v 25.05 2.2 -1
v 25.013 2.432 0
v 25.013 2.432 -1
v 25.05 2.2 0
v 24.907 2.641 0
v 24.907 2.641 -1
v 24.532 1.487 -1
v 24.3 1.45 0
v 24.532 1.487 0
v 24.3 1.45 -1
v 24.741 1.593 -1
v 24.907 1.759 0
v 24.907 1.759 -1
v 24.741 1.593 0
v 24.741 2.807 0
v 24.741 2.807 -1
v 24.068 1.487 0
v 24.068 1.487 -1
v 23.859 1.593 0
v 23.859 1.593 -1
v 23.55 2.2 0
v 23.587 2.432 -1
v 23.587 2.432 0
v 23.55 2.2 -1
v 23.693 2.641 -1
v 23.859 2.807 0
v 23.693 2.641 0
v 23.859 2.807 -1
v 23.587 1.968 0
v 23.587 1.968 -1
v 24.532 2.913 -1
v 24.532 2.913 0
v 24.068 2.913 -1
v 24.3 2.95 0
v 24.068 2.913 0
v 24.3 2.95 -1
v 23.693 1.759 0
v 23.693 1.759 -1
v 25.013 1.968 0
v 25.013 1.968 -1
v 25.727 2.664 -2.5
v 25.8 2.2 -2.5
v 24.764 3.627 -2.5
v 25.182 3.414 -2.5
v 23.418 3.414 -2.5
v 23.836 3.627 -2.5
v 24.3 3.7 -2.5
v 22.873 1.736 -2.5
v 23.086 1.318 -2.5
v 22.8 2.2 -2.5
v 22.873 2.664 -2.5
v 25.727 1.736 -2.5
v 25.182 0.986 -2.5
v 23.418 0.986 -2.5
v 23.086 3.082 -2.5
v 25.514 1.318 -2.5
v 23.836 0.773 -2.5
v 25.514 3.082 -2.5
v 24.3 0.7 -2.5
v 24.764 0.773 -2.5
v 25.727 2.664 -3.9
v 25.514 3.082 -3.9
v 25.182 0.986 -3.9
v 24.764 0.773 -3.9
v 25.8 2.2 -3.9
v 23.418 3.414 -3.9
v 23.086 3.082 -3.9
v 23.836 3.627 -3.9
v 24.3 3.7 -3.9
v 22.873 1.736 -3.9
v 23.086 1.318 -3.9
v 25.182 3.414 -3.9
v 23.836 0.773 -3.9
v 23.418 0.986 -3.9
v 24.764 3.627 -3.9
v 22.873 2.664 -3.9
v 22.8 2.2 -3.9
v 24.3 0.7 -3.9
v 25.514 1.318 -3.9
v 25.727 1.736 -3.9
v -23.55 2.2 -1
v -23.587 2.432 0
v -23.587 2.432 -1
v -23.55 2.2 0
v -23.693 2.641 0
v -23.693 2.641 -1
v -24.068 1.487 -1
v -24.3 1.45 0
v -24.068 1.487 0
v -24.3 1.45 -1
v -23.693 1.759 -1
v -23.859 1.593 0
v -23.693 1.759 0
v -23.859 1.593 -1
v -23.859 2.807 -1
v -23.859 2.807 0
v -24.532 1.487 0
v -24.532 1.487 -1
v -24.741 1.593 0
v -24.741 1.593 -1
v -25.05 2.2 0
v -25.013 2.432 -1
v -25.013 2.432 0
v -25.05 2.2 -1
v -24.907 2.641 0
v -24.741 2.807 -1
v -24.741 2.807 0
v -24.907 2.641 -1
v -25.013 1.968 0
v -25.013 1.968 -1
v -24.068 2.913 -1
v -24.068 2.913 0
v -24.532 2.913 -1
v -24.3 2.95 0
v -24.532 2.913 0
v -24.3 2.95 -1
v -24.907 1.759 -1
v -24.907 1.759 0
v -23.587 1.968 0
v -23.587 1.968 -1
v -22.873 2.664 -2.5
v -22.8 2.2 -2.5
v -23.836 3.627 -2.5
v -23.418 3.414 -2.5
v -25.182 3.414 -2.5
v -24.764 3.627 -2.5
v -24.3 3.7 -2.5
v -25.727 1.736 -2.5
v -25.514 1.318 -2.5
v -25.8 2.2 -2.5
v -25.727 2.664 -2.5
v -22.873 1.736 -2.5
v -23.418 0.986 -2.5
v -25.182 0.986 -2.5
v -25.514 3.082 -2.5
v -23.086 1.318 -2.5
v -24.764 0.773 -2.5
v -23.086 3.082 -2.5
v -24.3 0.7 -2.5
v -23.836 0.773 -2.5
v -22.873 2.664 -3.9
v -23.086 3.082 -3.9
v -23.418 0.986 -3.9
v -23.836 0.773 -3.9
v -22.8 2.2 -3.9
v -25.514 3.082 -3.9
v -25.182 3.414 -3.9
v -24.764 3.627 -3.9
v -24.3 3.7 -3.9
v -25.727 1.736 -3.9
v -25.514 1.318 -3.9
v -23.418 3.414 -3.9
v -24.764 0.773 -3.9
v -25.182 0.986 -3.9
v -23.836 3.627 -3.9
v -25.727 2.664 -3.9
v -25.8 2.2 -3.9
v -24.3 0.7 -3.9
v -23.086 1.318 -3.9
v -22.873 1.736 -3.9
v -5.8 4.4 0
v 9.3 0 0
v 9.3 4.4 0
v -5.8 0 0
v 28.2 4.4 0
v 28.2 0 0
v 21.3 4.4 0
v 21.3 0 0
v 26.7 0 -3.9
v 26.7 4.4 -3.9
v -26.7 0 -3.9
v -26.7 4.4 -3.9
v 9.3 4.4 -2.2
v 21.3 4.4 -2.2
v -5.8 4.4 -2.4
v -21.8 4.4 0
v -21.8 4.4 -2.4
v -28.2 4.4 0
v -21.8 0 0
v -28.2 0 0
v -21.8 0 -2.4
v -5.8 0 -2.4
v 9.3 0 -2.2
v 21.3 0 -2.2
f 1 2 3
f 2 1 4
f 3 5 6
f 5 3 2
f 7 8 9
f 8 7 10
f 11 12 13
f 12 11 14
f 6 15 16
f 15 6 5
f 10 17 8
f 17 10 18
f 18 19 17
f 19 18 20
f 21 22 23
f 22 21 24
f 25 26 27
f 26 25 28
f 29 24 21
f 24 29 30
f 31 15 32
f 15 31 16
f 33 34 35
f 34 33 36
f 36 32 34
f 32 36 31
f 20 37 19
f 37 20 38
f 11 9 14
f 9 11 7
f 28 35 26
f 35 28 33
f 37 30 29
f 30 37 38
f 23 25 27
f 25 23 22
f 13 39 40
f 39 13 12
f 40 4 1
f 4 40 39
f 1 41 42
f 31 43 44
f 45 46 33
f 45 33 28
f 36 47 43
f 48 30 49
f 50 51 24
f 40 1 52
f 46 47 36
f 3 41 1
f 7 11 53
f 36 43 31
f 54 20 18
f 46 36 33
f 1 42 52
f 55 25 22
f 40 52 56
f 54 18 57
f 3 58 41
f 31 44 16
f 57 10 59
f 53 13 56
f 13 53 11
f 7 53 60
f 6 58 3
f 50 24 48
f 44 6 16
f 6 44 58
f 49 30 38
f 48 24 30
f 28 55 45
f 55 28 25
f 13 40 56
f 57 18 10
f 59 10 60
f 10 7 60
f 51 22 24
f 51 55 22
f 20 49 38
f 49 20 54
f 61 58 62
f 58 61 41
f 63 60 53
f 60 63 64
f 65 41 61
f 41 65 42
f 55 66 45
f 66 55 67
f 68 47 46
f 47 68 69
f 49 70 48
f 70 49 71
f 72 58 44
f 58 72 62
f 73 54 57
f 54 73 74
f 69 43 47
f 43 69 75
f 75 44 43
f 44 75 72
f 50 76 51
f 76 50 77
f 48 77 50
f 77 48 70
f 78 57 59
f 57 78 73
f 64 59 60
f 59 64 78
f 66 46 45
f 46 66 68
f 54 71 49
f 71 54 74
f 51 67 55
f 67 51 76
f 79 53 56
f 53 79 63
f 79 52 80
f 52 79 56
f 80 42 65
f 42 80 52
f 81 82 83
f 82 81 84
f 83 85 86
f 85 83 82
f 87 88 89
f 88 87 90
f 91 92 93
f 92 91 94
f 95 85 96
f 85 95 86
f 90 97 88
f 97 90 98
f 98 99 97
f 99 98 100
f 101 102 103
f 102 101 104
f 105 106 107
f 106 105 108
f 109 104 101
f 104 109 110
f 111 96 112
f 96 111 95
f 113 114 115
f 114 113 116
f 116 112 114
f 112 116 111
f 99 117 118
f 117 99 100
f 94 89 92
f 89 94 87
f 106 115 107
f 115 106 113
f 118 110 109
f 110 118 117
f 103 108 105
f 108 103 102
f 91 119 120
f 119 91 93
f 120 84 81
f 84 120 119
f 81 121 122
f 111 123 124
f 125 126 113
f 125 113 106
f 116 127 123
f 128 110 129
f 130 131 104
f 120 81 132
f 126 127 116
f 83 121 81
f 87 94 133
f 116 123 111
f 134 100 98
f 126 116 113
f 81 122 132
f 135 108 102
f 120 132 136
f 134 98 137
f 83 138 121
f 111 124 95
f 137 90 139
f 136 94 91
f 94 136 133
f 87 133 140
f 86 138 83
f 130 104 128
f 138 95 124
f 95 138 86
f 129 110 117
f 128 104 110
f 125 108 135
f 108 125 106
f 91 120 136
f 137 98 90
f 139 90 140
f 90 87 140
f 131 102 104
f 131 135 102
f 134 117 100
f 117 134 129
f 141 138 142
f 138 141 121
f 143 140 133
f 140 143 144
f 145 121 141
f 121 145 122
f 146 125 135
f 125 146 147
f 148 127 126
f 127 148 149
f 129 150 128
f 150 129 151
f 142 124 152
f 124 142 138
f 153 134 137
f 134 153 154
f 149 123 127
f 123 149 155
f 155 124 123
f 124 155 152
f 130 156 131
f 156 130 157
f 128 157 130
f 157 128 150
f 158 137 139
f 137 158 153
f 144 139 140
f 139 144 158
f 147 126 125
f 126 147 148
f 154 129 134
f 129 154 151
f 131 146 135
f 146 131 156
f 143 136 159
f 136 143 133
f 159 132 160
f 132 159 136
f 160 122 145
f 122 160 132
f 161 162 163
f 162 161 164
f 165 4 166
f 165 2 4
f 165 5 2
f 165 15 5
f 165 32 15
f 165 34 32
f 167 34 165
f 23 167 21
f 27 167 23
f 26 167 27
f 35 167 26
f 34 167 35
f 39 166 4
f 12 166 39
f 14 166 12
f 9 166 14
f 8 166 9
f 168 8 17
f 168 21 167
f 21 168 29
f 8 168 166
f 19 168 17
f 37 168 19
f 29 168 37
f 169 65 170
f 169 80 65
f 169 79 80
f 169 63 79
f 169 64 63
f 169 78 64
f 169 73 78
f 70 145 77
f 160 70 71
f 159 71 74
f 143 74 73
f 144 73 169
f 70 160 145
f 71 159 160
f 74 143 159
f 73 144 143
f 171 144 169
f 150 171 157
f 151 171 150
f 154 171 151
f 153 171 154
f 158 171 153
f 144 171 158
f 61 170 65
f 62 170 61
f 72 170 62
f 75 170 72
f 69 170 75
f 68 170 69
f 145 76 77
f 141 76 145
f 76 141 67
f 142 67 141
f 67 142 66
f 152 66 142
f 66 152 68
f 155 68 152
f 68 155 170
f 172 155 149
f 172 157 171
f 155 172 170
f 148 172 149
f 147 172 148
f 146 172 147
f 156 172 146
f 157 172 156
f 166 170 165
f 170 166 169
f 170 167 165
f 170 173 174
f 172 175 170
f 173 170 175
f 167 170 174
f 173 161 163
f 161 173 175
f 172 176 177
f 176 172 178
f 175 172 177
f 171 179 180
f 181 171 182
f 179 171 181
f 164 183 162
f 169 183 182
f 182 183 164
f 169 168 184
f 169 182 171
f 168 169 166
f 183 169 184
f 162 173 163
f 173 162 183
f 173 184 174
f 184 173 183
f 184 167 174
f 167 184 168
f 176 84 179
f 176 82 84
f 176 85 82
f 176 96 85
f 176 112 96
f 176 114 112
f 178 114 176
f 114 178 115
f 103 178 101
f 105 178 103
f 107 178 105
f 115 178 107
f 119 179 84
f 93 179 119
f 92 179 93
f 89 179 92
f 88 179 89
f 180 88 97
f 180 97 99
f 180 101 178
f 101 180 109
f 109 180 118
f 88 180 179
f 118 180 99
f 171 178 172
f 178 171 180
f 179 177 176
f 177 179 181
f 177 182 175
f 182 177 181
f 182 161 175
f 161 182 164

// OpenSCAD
s = 1.5; // key rail x shift

module scube(x, xs, y, z, center=false) {
    if(center){
        linear_extrude(z, scale=[xs/x,1]) square([x,y], center=true);
    } else {
        translate([x/2,y/2,0])
            linear_extrude(z, scale=[xs/x,1]) square([x,y], center=true);
    }   
}

module key_slot(w, ws, h, th, sw, sth, m=0.1) {
    difference() {
        translate([0,h/2,0]) 
            scube(x=w-2*m, xs=ws-2*m, y=h, z=th-m, center=true);
        
        translate([0,0,0]) 
            linear_extrude(sth) translate([-sw/2, 0]) square([sw, h]);
    
    }
}

module screw_hole(dl, ds, h) {
    large = 100;
    cylinder(h=large, d=ds, $fn=20);
    cylinder(h=h, d1=dl, d2=ds, $fn=20);
    mirror([0,0,1]) cylinder(h=large, d=dl, $fn=20);
}



st = 4;
wm = 26;
wms = 23;
wd = 29;
wds = 26;
m = 0.1;

h = 4.4;

mirror([0,0,1]) difference() {
    union() {
        translate([wm/2+0.8+s,0,0]) // mailbox
            key_slot(w=wm, ws=wms, h=h, th=st, sw=12, sth=2.2); 
        translate([-wd/2-0.8+s,0,0]) // door
            key_slot(w=wd, ws=wds, h=h, th=st, sw=16, sth=2.4); 
        #translate([s,h/2,(st-m)/2]) cube([6, h,st-m], center=true);
    }
    ev = 28.3; // blocker end value = wm/2+0.8+s + wm/2 = -wd/2-0.8+s - wd/2
    translate([+ev-4,h/2,st-1.5]) mirror([0,0,1]) 
        screw_hole(ds=1.5, dl=3, h=1.5);
    translate([-ev+4,h/2,st-1.5]) mirror([0,0,1]) 
        screw_hole(ds=1.5, dl=3, h=1.5);
}
